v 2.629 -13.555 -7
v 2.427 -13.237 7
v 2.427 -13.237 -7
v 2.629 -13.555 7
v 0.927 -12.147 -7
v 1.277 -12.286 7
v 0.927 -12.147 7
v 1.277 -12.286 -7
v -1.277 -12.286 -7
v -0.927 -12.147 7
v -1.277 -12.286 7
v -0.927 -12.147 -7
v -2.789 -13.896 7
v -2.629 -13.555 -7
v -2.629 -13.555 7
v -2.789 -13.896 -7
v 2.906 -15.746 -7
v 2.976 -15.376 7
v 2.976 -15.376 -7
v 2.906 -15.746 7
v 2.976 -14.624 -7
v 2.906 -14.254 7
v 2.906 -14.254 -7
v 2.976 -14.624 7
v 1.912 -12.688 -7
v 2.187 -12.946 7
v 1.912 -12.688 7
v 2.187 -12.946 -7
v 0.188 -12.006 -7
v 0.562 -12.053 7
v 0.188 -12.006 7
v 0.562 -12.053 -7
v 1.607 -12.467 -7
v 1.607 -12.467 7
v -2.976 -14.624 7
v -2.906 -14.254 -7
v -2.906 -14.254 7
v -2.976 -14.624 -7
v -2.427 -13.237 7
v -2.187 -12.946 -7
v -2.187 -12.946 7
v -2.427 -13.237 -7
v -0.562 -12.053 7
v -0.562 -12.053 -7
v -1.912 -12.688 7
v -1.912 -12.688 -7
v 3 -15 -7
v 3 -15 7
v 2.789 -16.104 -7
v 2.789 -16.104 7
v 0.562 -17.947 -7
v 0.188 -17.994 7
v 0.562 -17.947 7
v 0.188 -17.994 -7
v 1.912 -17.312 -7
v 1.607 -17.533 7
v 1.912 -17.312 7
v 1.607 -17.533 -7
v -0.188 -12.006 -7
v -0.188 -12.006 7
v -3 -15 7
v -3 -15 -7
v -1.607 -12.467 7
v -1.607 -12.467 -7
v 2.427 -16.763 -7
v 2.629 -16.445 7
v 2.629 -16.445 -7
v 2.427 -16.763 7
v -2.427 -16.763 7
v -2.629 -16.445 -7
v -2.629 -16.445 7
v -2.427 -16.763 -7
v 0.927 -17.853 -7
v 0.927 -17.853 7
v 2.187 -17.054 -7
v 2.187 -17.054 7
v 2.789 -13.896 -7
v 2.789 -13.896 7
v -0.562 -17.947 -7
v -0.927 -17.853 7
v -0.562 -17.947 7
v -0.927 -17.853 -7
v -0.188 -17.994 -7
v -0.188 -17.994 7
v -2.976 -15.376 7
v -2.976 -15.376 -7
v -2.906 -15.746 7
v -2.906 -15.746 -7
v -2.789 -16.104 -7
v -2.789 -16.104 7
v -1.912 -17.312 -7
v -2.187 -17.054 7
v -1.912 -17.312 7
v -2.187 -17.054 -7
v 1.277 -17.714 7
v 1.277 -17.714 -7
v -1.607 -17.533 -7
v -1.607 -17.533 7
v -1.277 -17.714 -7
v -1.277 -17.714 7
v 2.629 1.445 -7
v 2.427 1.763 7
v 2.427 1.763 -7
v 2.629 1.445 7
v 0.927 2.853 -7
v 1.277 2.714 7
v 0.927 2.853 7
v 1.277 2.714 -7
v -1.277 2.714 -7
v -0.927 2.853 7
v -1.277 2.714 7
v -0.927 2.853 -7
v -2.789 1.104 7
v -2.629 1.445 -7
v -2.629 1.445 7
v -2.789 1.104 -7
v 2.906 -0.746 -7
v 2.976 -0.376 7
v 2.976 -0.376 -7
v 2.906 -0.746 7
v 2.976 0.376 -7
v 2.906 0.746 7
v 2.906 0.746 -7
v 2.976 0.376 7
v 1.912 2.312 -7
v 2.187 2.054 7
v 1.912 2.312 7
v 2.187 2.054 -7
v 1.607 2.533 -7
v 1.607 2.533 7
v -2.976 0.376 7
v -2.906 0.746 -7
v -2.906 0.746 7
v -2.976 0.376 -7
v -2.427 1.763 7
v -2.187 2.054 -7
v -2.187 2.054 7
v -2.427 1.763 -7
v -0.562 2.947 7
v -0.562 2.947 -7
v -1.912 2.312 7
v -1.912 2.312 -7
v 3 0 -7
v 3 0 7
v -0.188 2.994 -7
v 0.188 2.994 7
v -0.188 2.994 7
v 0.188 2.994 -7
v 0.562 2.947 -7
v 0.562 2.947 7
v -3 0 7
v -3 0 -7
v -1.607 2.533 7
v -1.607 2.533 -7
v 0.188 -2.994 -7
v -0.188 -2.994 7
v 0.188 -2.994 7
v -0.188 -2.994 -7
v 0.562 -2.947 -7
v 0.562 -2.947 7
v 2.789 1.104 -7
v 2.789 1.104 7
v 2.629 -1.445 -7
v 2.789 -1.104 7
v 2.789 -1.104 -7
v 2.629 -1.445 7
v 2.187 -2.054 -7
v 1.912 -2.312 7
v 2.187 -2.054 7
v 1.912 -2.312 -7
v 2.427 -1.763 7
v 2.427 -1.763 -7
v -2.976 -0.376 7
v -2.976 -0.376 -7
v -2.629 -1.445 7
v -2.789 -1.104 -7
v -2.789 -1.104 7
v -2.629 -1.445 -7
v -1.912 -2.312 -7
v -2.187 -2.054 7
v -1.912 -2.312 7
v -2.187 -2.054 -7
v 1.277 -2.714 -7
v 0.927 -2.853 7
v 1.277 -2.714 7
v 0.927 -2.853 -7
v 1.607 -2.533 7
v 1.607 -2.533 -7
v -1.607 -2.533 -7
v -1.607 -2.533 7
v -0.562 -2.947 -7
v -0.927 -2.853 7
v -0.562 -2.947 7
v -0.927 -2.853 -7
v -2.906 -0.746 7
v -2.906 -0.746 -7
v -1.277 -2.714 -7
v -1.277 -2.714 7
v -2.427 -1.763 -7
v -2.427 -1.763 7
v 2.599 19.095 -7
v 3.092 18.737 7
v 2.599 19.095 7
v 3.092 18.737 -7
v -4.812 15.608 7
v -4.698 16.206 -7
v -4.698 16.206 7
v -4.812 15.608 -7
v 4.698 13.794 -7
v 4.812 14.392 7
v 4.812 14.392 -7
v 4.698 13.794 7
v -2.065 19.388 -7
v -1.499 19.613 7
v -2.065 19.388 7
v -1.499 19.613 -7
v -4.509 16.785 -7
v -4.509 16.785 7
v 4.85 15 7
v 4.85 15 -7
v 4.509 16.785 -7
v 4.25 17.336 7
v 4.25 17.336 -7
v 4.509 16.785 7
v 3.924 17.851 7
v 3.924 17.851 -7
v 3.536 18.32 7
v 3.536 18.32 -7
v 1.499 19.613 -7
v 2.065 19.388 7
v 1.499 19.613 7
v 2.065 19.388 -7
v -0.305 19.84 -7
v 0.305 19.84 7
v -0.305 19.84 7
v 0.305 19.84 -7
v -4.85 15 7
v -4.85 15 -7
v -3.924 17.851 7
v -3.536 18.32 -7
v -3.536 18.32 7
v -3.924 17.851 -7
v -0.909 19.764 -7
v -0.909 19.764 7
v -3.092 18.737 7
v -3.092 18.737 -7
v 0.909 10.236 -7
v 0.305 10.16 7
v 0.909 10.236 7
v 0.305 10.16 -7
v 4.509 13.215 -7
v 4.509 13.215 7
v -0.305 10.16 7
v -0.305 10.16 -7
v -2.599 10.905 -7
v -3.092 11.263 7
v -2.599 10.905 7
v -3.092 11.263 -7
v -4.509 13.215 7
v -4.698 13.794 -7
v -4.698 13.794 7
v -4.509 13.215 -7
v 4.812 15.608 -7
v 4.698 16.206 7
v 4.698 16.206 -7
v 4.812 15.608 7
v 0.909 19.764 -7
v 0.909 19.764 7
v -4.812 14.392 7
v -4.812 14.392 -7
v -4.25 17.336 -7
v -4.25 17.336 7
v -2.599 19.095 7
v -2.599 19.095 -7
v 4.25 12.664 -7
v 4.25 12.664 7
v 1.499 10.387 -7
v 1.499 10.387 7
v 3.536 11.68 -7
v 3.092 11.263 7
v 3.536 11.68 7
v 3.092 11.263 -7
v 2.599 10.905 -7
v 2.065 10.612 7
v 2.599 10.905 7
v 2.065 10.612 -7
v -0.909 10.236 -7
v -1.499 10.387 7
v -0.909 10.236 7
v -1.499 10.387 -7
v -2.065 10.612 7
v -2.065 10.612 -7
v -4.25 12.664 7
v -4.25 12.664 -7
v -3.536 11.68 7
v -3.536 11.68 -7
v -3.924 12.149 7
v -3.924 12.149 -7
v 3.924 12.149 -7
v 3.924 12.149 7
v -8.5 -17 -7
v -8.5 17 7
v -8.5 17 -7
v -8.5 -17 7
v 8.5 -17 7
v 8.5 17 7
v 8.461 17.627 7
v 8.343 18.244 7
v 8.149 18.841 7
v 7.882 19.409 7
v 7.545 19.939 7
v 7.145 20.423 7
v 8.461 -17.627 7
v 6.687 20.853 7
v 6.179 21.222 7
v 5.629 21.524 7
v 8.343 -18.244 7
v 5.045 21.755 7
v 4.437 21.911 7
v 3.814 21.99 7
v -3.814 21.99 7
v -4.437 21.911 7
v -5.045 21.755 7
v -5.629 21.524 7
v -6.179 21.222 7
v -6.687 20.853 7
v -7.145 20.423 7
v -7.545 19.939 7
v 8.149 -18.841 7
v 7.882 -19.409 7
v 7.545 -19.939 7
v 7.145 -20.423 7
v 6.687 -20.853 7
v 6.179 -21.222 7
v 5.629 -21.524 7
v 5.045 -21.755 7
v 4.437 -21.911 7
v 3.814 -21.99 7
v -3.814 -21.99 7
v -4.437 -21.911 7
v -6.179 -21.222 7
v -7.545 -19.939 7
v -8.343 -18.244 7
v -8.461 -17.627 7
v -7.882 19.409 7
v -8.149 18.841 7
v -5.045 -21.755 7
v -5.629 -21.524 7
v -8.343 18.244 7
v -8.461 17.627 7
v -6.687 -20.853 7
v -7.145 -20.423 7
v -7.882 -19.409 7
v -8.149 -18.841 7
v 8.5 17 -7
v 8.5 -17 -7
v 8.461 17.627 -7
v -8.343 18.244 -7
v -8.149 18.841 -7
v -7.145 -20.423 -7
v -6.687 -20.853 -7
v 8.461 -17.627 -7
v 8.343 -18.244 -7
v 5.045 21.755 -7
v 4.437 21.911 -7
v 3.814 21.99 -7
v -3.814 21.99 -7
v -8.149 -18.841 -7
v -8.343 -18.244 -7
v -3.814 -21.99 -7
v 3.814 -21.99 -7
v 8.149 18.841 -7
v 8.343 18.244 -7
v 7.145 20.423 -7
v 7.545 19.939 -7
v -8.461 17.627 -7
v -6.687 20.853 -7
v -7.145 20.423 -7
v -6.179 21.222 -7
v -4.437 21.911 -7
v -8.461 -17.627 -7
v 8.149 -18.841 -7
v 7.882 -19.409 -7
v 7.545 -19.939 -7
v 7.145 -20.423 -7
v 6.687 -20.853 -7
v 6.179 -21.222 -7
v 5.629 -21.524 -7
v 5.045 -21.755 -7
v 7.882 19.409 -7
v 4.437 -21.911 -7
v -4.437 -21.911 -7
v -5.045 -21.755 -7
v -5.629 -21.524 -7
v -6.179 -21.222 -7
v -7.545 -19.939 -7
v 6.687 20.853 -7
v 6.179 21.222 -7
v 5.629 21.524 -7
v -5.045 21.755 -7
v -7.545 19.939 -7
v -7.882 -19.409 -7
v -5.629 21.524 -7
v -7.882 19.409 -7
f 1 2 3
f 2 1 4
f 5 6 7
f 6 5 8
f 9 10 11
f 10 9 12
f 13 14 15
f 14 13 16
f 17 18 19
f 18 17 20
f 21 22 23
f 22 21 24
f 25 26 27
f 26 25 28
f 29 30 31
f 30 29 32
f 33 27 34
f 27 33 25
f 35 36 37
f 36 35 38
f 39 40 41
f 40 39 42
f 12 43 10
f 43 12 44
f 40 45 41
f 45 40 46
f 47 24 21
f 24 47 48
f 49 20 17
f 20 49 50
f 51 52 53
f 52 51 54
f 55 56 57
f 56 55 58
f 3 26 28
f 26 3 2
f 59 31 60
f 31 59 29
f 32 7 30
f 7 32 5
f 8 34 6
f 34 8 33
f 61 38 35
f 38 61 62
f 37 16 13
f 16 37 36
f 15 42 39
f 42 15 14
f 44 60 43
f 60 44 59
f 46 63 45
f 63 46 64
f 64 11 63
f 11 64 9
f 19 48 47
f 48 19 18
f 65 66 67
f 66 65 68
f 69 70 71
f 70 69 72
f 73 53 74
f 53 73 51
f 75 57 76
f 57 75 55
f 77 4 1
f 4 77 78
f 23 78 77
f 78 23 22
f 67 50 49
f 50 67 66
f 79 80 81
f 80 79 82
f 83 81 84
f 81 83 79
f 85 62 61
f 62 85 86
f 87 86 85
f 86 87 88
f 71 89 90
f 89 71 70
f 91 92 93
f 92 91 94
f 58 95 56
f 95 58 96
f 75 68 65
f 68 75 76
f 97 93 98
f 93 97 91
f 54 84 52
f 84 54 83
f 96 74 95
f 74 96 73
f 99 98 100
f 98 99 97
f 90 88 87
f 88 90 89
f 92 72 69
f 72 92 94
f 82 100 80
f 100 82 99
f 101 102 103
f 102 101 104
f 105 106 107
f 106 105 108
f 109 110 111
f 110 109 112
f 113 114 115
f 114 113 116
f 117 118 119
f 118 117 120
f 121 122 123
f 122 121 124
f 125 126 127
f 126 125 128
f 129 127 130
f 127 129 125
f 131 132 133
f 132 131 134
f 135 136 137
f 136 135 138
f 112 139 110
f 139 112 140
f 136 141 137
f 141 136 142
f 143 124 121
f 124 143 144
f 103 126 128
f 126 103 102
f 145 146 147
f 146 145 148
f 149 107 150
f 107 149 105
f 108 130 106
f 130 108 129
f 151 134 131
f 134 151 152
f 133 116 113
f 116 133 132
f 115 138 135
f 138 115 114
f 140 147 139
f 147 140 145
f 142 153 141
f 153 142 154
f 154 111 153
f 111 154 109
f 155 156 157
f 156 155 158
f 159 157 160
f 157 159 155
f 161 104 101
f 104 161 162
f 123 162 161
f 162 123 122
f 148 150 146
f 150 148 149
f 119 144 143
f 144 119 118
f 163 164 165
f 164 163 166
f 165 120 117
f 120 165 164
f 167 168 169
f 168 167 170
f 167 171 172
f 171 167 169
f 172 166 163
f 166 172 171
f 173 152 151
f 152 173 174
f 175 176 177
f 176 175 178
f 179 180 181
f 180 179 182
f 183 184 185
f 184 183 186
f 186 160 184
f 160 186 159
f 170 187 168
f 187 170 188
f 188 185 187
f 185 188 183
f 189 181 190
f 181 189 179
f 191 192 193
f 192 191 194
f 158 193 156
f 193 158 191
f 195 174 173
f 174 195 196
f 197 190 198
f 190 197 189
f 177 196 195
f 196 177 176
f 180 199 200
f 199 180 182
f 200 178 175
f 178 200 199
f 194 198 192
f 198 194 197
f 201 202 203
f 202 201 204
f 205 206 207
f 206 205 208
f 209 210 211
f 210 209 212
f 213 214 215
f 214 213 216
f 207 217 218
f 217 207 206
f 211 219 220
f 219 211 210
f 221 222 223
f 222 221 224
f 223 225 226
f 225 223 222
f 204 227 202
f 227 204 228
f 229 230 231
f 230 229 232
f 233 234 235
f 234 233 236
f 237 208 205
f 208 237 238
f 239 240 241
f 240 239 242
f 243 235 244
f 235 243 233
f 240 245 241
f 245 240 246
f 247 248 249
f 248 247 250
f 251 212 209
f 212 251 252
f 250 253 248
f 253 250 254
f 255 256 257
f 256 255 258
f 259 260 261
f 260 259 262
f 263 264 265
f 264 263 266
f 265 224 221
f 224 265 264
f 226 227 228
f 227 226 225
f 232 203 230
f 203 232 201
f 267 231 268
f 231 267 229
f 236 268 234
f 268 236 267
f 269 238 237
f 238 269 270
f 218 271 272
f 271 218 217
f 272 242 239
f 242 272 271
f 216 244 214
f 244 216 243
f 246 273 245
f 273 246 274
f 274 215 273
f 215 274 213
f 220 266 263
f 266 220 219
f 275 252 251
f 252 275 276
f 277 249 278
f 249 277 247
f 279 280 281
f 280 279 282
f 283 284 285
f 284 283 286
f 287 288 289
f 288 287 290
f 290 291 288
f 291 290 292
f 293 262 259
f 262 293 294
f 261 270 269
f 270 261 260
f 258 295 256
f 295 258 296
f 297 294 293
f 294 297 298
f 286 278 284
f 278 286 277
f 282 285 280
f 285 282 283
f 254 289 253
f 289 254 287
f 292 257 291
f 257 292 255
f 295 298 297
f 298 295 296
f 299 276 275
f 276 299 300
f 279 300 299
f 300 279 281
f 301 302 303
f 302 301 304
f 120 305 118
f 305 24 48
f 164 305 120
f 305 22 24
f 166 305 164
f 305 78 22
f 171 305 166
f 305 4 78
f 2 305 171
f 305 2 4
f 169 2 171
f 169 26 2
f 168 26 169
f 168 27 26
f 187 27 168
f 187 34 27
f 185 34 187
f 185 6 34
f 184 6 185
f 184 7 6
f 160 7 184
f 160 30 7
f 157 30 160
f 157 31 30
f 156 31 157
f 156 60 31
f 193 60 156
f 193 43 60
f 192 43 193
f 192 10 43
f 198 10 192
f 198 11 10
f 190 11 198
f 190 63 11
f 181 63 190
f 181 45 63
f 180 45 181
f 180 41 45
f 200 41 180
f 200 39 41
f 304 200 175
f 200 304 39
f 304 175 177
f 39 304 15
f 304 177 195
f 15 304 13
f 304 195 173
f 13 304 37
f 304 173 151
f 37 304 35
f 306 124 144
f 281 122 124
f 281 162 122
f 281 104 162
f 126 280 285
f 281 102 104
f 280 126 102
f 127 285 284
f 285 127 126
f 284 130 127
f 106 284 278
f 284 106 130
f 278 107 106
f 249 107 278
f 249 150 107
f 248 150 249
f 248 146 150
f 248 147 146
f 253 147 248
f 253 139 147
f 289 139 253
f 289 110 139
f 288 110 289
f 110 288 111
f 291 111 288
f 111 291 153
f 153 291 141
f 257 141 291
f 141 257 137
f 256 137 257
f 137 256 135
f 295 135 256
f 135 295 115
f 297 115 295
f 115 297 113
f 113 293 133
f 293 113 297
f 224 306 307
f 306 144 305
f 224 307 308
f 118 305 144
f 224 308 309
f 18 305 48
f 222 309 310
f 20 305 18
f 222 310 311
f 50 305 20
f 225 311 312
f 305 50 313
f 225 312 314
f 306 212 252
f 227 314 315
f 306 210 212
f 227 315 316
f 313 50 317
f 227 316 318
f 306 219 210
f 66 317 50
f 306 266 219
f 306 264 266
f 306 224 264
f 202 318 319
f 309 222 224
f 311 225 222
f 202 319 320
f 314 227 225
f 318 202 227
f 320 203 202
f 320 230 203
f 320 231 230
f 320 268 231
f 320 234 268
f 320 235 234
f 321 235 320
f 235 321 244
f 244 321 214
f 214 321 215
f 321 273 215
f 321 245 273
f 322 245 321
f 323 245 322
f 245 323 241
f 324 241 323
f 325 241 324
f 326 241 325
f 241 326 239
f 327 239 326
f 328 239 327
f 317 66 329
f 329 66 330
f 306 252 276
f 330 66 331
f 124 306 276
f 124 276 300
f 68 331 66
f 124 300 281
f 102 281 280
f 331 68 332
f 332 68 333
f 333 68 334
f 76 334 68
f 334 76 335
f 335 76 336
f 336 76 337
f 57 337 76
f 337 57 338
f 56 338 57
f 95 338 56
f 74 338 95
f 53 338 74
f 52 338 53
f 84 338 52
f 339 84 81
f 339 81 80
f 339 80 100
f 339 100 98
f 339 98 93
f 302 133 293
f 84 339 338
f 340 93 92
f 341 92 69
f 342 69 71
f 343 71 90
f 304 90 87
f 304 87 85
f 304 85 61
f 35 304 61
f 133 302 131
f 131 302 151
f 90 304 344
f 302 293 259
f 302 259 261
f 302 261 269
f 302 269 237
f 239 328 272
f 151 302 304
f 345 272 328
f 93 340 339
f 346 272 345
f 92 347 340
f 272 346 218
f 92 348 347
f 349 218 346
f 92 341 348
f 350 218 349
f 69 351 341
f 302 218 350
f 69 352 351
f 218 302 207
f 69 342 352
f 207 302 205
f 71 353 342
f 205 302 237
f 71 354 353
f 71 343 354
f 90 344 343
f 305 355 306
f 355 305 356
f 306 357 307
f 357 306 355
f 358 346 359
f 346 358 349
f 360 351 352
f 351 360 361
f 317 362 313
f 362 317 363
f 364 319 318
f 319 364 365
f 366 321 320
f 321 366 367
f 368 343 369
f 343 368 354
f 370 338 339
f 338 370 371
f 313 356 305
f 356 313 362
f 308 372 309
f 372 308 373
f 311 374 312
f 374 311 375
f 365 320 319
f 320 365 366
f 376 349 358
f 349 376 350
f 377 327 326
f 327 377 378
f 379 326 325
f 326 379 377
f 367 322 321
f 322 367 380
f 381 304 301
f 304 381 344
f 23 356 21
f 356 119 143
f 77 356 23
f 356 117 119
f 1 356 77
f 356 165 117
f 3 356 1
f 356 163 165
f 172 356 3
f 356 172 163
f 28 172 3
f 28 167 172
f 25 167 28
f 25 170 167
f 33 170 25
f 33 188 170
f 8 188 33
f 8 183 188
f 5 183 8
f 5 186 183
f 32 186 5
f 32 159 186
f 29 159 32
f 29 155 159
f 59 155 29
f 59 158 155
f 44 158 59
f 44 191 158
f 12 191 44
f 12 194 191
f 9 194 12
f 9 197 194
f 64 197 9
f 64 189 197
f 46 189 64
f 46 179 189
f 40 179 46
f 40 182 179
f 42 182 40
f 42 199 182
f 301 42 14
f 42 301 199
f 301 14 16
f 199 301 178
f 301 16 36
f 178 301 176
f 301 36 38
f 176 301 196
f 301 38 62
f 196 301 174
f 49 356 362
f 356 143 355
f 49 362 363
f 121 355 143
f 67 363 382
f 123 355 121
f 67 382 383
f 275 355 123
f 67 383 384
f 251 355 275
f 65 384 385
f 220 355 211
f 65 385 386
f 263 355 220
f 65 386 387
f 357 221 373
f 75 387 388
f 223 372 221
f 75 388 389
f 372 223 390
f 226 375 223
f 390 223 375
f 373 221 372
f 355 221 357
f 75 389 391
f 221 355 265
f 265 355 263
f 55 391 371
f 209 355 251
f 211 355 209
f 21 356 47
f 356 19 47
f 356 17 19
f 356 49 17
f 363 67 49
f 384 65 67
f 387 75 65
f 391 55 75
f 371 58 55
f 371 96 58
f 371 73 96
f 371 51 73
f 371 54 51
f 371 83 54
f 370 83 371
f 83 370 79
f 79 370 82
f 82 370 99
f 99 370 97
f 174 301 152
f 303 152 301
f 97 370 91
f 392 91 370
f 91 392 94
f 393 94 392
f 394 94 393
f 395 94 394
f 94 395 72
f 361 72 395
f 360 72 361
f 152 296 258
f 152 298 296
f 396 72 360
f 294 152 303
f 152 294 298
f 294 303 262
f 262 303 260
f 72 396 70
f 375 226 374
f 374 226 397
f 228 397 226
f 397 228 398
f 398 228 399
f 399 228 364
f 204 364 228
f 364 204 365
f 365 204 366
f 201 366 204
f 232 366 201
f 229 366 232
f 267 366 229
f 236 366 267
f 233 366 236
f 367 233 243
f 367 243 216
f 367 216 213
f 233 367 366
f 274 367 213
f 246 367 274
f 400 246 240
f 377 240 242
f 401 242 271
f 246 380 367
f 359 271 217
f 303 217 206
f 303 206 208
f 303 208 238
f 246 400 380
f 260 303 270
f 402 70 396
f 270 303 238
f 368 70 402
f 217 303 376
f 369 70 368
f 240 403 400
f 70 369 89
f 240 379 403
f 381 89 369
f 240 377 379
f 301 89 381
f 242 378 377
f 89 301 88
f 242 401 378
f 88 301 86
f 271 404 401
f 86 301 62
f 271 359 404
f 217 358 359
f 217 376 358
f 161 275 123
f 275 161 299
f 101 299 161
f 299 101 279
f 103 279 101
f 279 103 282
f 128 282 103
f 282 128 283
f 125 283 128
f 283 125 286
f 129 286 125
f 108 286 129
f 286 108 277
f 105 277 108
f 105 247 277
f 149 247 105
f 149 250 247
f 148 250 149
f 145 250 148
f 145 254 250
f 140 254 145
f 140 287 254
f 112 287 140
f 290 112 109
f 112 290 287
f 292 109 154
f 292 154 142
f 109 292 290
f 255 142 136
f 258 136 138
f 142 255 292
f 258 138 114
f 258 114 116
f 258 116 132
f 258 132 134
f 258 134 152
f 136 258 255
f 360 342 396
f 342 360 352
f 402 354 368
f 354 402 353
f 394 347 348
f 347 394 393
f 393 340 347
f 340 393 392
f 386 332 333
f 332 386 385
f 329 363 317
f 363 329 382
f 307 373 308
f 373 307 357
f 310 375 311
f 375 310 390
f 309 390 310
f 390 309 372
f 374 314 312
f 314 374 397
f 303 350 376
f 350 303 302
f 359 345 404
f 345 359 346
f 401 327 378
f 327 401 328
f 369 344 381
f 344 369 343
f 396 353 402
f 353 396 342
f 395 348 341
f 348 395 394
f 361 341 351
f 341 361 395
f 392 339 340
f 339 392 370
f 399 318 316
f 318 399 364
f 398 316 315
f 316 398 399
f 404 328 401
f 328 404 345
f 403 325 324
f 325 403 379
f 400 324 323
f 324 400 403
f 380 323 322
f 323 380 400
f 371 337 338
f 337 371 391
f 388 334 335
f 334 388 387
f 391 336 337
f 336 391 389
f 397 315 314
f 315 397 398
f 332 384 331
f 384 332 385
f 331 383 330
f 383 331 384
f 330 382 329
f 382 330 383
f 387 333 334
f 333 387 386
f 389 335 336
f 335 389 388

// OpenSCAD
$fn = 50;


difference() {
	union() {
		translate(v = [0, 0, -7.0000000000]) {
			hull() {
				translate(v = [-3.5000000000, 17.0000000000, 0]) {
					cylinder(h = 14, r = 5);
				}
				translate(v = [3.5000000000, 17.0000000000, 0]) {
					cylinder(h = 14, r = 5);
				}
				translate(v = [-3.5000000000, -17.0000000000, 0]) {
					cylinder(h = 14, r = 5);
				}
				translate(v = [3.5000000000, -17.0000000000, 0]) {
					cylinder(h = 14, r = 5);
				}
			}
		}
	}
	union() {
		translate(v = [0.0000000000, -15.0000000000, -100.0000000000]) {
			cylinder(h = 200, r = 3.0000000000);
		}
		translate(v = [0.0000000000, 0.0000000000, -100.0000000000]) {
			cylinder(h = 200, r = 3.0000000000);
		}
		translate(v = [0, 15, -100.0000000000]) {
			cylinder(h = 200, r = 4.8500000000);
		}
	}
}
